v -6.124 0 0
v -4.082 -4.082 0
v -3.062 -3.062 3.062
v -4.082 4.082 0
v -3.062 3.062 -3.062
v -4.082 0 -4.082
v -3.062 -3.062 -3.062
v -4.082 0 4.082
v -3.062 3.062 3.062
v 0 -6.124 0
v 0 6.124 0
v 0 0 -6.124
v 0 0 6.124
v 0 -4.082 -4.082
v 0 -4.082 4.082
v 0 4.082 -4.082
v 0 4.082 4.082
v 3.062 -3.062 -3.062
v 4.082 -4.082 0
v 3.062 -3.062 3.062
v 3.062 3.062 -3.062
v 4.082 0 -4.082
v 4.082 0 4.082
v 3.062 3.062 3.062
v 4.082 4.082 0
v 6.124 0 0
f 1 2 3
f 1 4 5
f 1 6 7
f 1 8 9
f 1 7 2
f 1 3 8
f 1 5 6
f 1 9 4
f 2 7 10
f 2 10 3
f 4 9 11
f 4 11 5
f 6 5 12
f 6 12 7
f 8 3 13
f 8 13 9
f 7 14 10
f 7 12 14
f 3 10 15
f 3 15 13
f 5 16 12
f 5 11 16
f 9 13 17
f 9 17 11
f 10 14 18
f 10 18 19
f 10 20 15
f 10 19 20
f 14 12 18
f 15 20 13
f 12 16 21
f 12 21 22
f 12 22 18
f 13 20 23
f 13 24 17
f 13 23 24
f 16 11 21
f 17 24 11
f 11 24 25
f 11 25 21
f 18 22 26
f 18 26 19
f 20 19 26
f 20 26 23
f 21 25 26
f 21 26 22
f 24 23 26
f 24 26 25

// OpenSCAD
function z2miller(plane)=
let(p=plane/sqrt(plane*plane))
[0,acos(p[2]),atan2(p[1],p[0])];


intersection(){
t = 10;
rotate(z2miller([2,1,1]))
cylinder(t,100,100,center=true);

rotate(z2miller([1,2,1]))
cylinder(t,100,100,center=true);

rotate(z2miller([1,1,2]))
cylinder(t,100,100,center=true);

//
rotate(z2miller([2,1,-1]))
cylinder(t,100,100,center=true);

rotate(z2miller([1,2,-1]))
cylinder(t,100,100,center=true);

rotate(z2miller([1,1,-2]))
cylinder(t,100,100,center=true);

//
rotate(z2miller([2,-1,1]))
cylinder(t,100,100,center=true);

rotate(z2miller([1,-2,1]))
cylinder(t,100,100,center=true);

rotate(z2miller([1,-1,2]))
cylinder(t,100,100,center=true);

//
rotate(z2miller([-2,-1,1]))
cylinder(t,100,100,center=true);

rotate(z2miller([-1,2,1]))
cylinder(t,100,100,center=true);

rotate(z2miller([-1,1,2]))
cylinder(t,100,100,center=true);

//
rotate(z2miller([-2,-1,1]))
cylinder(t,100,100,center=true);

rotate(z2miller([-1,-2,1]))
cylinder(t,100,100,center=true);

rotate(z2miller([-1,-1,2]))
cylinder(t,100,100,center=true);

//
rotate(z2miller([2,-1,-1]))
cylinder(t,100,100,center=true);

rotate(z2miller([1,-2,-1]))
cylinder(t,100,100,center=true);

rotate(z2miller([1,-1,-2]))
cylinder(t,100,100,center=true);

}
